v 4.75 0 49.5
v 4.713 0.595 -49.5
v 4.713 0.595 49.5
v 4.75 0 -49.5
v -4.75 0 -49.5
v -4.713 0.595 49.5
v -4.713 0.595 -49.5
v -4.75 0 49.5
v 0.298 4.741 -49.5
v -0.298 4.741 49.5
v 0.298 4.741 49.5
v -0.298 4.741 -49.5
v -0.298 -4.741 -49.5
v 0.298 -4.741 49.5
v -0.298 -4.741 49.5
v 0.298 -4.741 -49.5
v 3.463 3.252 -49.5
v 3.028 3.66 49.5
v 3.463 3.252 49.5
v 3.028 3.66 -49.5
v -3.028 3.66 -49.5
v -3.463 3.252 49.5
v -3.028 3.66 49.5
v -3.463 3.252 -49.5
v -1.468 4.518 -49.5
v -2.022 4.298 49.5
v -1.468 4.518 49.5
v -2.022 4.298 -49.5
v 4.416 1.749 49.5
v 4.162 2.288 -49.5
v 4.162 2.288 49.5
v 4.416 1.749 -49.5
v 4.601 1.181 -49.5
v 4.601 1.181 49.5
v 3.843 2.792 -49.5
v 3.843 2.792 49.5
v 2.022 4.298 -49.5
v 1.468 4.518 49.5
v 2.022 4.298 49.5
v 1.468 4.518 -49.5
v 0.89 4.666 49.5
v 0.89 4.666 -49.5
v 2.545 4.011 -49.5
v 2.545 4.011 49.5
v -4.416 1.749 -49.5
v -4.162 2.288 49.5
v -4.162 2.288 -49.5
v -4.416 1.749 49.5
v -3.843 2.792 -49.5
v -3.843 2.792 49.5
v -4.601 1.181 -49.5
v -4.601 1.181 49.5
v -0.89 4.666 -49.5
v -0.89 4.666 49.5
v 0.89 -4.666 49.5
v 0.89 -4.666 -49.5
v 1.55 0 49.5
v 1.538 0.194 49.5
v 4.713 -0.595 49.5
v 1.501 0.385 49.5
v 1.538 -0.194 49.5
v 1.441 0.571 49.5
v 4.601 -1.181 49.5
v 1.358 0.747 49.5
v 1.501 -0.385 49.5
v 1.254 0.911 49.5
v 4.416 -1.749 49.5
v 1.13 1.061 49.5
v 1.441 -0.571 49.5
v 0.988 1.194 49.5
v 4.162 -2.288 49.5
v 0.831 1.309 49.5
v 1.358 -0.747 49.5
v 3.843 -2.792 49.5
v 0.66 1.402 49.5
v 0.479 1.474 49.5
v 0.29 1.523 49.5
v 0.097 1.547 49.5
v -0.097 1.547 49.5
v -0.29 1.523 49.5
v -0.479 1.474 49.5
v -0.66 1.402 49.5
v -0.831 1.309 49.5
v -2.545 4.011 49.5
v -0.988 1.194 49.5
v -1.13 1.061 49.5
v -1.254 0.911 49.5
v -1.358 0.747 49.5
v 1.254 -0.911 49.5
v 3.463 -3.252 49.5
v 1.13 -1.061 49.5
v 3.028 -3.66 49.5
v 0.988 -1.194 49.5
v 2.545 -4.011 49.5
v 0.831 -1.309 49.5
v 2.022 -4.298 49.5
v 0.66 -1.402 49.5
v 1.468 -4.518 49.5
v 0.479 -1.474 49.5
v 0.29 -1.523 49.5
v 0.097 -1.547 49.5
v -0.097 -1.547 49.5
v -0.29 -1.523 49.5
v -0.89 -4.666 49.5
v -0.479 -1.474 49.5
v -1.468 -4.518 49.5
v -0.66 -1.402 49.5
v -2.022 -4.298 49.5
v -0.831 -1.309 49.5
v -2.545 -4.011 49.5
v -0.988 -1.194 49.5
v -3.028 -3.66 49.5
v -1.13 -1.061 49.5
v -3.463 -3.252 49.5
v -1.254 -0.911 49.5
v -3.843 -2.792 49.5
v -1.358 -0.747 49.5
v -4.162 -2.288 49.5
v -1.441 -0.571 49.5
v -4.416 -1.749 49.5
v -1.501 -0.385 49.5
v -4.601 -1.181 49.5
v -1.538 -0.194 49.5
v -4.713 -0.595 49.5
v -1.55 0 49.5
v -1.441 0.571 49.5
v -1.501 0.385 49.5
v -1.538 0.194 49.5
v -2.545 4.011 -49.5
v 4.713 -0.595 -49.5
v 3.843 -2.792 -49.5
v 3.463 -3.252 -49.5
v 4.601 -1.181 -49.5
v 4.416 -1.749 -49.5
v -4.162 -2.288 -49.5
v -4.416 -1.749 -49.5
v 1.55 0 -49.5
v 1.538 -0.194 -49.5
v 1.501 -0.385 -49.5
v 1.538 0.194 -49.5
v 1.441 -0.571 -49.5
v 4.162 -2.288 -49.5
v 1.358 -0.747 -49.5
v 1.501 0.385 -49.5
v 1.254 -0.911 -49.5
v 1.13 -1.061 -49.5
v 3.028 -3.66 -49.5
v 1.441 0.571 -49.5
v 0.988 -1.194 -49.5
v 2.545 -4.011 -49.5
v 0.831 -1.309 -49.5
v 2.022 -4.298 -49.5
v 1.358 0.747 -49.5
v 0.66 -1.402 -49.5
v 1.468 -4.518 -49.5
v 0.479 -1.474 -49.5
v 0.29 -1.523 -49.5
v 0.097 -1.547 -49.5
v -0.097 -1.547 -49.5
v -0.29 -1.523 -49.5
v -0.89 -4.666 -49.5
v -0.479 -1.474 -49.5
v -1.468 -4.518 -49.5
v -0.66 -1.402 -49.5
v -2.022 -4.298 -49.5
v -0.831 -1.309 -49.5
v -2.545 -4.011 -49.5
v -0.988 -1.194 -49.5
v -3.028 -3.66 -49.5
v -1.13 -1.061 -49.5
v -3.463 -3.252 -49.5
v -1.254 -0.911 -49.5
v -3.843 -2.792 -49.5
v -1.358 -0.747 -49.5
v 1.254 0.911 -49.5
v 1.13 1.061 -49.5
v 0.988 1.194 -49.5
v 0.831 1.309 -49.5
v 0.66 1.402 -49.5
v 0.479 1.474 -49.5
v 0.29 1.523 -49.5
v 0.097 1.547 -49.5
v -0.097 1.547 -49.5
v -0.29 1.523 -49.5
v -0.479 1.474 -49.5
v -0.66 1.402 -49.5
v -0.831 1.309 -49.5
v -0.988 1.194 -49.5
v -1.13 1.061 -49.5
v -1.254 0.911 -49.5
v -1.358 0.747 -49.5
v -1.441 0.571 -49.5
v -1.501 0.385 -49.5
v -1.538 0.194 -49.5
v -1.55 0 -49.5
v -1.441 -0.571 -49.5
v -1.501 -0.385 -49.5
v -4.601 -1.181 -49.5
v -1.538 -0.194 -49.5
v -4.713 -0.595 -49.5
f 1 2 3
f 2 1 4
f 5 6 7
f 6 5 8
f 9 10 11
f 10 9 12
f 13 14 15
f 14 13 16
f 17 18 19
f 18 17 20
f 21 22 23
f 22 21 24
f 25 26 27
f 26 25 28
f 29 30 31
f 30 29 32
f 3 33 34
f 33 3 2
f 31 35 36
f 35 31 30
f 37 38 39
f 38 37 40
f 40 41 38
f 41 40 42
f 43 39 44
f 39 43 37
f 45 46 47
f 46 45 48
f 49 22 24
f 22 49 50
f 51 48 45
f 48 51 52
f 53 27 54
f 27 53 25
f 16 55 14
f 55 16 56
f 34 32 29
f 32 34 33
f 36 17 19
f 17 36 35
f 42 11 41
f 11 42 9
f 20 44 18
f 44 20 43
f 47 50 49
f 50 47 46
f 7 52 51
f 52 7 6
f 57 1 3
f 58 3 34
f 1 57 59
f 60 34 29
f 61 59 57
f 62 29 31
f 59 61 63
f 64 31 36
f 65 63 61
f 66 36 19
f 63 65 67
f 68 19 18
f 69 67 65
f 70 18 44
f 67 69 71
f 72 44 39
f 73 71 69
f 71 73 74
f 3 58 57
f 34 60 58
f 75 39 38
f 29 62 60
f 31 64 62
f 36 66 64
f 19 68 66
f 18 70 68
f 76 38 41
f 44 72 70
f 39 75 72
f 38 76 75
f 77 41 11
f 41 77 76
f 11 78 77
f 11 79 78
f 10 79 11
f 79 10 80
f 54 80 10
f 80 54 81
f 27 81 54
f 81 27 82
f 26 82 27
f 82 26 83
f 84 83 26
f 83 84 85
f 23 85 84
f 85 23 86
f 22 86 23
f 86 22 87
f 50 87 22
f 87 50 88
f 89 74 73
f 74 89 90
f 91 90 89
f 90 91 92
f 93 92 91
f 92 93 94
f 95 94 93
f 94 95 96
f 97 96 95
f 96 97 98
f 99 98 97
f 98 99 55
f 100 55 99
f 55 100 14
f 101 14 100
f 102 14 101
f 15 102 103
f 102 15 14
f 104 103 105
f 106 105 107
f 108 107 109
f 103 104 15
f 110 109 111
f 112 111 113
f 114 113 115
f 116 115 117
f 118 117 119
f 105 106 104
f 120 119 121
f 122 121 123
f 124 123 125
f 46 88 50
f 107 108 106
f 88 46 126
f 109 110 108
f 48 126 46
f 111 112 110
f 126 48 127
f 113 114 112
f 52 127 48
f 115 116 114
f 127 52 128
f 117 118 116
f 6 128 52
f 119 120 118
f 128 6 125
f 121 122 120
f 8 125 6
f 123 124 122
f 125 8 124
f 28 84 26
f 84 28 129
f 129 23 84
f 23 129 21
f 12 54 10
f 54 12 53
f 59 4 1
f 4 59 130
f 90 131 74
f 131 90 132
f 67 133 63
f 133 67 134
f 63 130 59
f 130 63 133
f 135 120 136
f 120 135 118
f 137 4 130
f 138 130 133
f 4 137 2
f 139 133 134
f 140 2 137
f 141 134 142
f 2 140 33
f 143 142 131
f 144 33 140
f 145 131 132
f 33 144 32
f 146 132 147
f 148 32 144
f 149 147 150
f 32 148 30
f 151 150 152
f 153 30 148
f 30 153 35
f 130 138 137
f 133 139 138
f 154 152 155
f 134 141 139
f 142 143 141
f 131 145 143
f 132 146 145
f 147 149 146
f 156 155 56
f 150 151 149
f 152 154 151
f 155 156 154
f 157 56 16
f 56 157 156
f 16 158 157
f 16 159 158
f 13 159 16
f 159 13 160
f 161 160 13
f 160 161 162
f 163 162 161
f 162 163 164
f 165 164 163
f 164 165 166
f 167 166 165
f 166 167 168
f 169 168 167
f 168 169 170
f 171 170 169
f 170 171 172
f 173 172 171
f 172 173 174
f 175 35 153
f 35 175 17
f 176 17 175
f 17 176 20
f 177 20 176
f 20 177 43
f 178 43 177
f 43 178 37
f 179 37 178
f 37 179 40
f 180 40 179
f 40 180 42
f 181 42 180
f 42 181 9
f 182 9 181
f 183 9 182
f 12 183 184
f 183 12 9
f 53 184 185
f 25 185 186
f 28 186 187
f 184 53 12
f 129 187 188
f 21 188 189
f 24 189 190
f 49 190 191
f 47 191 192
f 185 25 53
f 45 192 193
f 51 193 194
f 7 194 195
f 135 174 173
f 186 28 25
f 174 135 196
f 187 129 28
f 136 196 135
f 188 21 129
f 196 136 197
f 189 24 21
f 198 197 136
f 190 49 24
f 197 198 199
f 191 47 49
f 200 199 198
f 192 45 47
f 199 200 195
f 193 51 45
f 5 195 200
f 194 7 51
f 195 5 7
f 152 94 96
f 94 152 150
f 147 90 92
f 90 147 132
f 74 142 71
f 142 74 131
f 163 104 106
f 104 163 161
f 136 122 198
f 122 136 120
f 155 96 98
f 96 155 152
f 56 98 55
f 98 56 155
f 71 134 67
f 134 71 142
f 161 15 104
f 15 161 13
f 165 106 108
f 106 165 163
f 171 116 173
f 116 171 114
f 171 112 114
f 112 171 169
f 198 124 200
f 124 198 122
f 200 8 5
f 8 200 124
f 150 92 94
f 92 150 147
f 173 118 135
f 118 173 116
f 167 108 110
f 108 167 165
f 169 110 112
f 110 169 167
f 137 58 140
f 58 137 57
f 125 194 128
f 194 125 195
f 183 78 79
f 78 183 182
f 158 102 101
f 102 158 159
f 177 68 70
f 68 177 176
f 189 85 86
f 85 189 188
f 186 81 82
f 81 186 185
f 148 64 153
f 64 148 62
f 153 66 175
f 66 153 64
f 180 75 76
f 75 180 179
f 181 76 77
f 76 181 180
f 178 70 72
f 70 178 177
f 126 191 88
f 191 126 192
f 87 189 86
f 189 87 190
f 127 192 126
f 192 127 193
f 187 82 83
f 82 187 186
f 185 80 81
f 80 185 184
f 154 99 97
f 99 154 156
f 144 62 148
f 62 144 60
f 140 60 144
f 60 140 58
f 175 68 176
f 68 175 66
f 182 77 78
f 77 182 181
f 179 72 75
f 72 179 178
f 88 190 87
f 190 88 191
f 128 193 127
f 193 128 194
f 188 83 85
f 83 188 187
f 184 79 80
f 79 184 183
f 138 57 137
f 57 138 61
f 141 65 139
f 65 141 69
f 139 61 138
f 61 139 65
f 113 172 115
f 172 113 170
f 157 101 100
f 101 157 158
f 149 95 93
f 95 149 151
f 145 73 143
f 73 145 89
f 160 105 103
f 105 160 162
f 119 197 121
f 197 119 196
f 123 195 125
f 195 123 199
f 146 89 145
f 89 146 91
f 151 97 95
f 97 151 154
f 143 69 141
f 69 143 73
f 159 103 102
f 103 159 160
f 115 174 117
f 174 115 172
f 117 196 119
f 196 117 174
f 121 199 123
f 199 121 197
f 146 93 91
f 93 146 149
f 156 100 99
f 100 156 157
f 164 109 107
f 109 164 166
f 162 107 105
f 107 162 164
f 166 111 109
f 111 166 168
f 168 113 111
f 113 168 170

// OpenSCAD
$fn = 50;


difference() {
	union() {
		translate(v = [0, 0, -49.5000000000]) {
			cylinder(h = 99, r = 4.7500000000);
		}
	}
	union() {
		translate(v = [0, 0, -100.0000000000]) {
			cylinder(h = 200, r = 1.5500000000);
		}
	}
}
